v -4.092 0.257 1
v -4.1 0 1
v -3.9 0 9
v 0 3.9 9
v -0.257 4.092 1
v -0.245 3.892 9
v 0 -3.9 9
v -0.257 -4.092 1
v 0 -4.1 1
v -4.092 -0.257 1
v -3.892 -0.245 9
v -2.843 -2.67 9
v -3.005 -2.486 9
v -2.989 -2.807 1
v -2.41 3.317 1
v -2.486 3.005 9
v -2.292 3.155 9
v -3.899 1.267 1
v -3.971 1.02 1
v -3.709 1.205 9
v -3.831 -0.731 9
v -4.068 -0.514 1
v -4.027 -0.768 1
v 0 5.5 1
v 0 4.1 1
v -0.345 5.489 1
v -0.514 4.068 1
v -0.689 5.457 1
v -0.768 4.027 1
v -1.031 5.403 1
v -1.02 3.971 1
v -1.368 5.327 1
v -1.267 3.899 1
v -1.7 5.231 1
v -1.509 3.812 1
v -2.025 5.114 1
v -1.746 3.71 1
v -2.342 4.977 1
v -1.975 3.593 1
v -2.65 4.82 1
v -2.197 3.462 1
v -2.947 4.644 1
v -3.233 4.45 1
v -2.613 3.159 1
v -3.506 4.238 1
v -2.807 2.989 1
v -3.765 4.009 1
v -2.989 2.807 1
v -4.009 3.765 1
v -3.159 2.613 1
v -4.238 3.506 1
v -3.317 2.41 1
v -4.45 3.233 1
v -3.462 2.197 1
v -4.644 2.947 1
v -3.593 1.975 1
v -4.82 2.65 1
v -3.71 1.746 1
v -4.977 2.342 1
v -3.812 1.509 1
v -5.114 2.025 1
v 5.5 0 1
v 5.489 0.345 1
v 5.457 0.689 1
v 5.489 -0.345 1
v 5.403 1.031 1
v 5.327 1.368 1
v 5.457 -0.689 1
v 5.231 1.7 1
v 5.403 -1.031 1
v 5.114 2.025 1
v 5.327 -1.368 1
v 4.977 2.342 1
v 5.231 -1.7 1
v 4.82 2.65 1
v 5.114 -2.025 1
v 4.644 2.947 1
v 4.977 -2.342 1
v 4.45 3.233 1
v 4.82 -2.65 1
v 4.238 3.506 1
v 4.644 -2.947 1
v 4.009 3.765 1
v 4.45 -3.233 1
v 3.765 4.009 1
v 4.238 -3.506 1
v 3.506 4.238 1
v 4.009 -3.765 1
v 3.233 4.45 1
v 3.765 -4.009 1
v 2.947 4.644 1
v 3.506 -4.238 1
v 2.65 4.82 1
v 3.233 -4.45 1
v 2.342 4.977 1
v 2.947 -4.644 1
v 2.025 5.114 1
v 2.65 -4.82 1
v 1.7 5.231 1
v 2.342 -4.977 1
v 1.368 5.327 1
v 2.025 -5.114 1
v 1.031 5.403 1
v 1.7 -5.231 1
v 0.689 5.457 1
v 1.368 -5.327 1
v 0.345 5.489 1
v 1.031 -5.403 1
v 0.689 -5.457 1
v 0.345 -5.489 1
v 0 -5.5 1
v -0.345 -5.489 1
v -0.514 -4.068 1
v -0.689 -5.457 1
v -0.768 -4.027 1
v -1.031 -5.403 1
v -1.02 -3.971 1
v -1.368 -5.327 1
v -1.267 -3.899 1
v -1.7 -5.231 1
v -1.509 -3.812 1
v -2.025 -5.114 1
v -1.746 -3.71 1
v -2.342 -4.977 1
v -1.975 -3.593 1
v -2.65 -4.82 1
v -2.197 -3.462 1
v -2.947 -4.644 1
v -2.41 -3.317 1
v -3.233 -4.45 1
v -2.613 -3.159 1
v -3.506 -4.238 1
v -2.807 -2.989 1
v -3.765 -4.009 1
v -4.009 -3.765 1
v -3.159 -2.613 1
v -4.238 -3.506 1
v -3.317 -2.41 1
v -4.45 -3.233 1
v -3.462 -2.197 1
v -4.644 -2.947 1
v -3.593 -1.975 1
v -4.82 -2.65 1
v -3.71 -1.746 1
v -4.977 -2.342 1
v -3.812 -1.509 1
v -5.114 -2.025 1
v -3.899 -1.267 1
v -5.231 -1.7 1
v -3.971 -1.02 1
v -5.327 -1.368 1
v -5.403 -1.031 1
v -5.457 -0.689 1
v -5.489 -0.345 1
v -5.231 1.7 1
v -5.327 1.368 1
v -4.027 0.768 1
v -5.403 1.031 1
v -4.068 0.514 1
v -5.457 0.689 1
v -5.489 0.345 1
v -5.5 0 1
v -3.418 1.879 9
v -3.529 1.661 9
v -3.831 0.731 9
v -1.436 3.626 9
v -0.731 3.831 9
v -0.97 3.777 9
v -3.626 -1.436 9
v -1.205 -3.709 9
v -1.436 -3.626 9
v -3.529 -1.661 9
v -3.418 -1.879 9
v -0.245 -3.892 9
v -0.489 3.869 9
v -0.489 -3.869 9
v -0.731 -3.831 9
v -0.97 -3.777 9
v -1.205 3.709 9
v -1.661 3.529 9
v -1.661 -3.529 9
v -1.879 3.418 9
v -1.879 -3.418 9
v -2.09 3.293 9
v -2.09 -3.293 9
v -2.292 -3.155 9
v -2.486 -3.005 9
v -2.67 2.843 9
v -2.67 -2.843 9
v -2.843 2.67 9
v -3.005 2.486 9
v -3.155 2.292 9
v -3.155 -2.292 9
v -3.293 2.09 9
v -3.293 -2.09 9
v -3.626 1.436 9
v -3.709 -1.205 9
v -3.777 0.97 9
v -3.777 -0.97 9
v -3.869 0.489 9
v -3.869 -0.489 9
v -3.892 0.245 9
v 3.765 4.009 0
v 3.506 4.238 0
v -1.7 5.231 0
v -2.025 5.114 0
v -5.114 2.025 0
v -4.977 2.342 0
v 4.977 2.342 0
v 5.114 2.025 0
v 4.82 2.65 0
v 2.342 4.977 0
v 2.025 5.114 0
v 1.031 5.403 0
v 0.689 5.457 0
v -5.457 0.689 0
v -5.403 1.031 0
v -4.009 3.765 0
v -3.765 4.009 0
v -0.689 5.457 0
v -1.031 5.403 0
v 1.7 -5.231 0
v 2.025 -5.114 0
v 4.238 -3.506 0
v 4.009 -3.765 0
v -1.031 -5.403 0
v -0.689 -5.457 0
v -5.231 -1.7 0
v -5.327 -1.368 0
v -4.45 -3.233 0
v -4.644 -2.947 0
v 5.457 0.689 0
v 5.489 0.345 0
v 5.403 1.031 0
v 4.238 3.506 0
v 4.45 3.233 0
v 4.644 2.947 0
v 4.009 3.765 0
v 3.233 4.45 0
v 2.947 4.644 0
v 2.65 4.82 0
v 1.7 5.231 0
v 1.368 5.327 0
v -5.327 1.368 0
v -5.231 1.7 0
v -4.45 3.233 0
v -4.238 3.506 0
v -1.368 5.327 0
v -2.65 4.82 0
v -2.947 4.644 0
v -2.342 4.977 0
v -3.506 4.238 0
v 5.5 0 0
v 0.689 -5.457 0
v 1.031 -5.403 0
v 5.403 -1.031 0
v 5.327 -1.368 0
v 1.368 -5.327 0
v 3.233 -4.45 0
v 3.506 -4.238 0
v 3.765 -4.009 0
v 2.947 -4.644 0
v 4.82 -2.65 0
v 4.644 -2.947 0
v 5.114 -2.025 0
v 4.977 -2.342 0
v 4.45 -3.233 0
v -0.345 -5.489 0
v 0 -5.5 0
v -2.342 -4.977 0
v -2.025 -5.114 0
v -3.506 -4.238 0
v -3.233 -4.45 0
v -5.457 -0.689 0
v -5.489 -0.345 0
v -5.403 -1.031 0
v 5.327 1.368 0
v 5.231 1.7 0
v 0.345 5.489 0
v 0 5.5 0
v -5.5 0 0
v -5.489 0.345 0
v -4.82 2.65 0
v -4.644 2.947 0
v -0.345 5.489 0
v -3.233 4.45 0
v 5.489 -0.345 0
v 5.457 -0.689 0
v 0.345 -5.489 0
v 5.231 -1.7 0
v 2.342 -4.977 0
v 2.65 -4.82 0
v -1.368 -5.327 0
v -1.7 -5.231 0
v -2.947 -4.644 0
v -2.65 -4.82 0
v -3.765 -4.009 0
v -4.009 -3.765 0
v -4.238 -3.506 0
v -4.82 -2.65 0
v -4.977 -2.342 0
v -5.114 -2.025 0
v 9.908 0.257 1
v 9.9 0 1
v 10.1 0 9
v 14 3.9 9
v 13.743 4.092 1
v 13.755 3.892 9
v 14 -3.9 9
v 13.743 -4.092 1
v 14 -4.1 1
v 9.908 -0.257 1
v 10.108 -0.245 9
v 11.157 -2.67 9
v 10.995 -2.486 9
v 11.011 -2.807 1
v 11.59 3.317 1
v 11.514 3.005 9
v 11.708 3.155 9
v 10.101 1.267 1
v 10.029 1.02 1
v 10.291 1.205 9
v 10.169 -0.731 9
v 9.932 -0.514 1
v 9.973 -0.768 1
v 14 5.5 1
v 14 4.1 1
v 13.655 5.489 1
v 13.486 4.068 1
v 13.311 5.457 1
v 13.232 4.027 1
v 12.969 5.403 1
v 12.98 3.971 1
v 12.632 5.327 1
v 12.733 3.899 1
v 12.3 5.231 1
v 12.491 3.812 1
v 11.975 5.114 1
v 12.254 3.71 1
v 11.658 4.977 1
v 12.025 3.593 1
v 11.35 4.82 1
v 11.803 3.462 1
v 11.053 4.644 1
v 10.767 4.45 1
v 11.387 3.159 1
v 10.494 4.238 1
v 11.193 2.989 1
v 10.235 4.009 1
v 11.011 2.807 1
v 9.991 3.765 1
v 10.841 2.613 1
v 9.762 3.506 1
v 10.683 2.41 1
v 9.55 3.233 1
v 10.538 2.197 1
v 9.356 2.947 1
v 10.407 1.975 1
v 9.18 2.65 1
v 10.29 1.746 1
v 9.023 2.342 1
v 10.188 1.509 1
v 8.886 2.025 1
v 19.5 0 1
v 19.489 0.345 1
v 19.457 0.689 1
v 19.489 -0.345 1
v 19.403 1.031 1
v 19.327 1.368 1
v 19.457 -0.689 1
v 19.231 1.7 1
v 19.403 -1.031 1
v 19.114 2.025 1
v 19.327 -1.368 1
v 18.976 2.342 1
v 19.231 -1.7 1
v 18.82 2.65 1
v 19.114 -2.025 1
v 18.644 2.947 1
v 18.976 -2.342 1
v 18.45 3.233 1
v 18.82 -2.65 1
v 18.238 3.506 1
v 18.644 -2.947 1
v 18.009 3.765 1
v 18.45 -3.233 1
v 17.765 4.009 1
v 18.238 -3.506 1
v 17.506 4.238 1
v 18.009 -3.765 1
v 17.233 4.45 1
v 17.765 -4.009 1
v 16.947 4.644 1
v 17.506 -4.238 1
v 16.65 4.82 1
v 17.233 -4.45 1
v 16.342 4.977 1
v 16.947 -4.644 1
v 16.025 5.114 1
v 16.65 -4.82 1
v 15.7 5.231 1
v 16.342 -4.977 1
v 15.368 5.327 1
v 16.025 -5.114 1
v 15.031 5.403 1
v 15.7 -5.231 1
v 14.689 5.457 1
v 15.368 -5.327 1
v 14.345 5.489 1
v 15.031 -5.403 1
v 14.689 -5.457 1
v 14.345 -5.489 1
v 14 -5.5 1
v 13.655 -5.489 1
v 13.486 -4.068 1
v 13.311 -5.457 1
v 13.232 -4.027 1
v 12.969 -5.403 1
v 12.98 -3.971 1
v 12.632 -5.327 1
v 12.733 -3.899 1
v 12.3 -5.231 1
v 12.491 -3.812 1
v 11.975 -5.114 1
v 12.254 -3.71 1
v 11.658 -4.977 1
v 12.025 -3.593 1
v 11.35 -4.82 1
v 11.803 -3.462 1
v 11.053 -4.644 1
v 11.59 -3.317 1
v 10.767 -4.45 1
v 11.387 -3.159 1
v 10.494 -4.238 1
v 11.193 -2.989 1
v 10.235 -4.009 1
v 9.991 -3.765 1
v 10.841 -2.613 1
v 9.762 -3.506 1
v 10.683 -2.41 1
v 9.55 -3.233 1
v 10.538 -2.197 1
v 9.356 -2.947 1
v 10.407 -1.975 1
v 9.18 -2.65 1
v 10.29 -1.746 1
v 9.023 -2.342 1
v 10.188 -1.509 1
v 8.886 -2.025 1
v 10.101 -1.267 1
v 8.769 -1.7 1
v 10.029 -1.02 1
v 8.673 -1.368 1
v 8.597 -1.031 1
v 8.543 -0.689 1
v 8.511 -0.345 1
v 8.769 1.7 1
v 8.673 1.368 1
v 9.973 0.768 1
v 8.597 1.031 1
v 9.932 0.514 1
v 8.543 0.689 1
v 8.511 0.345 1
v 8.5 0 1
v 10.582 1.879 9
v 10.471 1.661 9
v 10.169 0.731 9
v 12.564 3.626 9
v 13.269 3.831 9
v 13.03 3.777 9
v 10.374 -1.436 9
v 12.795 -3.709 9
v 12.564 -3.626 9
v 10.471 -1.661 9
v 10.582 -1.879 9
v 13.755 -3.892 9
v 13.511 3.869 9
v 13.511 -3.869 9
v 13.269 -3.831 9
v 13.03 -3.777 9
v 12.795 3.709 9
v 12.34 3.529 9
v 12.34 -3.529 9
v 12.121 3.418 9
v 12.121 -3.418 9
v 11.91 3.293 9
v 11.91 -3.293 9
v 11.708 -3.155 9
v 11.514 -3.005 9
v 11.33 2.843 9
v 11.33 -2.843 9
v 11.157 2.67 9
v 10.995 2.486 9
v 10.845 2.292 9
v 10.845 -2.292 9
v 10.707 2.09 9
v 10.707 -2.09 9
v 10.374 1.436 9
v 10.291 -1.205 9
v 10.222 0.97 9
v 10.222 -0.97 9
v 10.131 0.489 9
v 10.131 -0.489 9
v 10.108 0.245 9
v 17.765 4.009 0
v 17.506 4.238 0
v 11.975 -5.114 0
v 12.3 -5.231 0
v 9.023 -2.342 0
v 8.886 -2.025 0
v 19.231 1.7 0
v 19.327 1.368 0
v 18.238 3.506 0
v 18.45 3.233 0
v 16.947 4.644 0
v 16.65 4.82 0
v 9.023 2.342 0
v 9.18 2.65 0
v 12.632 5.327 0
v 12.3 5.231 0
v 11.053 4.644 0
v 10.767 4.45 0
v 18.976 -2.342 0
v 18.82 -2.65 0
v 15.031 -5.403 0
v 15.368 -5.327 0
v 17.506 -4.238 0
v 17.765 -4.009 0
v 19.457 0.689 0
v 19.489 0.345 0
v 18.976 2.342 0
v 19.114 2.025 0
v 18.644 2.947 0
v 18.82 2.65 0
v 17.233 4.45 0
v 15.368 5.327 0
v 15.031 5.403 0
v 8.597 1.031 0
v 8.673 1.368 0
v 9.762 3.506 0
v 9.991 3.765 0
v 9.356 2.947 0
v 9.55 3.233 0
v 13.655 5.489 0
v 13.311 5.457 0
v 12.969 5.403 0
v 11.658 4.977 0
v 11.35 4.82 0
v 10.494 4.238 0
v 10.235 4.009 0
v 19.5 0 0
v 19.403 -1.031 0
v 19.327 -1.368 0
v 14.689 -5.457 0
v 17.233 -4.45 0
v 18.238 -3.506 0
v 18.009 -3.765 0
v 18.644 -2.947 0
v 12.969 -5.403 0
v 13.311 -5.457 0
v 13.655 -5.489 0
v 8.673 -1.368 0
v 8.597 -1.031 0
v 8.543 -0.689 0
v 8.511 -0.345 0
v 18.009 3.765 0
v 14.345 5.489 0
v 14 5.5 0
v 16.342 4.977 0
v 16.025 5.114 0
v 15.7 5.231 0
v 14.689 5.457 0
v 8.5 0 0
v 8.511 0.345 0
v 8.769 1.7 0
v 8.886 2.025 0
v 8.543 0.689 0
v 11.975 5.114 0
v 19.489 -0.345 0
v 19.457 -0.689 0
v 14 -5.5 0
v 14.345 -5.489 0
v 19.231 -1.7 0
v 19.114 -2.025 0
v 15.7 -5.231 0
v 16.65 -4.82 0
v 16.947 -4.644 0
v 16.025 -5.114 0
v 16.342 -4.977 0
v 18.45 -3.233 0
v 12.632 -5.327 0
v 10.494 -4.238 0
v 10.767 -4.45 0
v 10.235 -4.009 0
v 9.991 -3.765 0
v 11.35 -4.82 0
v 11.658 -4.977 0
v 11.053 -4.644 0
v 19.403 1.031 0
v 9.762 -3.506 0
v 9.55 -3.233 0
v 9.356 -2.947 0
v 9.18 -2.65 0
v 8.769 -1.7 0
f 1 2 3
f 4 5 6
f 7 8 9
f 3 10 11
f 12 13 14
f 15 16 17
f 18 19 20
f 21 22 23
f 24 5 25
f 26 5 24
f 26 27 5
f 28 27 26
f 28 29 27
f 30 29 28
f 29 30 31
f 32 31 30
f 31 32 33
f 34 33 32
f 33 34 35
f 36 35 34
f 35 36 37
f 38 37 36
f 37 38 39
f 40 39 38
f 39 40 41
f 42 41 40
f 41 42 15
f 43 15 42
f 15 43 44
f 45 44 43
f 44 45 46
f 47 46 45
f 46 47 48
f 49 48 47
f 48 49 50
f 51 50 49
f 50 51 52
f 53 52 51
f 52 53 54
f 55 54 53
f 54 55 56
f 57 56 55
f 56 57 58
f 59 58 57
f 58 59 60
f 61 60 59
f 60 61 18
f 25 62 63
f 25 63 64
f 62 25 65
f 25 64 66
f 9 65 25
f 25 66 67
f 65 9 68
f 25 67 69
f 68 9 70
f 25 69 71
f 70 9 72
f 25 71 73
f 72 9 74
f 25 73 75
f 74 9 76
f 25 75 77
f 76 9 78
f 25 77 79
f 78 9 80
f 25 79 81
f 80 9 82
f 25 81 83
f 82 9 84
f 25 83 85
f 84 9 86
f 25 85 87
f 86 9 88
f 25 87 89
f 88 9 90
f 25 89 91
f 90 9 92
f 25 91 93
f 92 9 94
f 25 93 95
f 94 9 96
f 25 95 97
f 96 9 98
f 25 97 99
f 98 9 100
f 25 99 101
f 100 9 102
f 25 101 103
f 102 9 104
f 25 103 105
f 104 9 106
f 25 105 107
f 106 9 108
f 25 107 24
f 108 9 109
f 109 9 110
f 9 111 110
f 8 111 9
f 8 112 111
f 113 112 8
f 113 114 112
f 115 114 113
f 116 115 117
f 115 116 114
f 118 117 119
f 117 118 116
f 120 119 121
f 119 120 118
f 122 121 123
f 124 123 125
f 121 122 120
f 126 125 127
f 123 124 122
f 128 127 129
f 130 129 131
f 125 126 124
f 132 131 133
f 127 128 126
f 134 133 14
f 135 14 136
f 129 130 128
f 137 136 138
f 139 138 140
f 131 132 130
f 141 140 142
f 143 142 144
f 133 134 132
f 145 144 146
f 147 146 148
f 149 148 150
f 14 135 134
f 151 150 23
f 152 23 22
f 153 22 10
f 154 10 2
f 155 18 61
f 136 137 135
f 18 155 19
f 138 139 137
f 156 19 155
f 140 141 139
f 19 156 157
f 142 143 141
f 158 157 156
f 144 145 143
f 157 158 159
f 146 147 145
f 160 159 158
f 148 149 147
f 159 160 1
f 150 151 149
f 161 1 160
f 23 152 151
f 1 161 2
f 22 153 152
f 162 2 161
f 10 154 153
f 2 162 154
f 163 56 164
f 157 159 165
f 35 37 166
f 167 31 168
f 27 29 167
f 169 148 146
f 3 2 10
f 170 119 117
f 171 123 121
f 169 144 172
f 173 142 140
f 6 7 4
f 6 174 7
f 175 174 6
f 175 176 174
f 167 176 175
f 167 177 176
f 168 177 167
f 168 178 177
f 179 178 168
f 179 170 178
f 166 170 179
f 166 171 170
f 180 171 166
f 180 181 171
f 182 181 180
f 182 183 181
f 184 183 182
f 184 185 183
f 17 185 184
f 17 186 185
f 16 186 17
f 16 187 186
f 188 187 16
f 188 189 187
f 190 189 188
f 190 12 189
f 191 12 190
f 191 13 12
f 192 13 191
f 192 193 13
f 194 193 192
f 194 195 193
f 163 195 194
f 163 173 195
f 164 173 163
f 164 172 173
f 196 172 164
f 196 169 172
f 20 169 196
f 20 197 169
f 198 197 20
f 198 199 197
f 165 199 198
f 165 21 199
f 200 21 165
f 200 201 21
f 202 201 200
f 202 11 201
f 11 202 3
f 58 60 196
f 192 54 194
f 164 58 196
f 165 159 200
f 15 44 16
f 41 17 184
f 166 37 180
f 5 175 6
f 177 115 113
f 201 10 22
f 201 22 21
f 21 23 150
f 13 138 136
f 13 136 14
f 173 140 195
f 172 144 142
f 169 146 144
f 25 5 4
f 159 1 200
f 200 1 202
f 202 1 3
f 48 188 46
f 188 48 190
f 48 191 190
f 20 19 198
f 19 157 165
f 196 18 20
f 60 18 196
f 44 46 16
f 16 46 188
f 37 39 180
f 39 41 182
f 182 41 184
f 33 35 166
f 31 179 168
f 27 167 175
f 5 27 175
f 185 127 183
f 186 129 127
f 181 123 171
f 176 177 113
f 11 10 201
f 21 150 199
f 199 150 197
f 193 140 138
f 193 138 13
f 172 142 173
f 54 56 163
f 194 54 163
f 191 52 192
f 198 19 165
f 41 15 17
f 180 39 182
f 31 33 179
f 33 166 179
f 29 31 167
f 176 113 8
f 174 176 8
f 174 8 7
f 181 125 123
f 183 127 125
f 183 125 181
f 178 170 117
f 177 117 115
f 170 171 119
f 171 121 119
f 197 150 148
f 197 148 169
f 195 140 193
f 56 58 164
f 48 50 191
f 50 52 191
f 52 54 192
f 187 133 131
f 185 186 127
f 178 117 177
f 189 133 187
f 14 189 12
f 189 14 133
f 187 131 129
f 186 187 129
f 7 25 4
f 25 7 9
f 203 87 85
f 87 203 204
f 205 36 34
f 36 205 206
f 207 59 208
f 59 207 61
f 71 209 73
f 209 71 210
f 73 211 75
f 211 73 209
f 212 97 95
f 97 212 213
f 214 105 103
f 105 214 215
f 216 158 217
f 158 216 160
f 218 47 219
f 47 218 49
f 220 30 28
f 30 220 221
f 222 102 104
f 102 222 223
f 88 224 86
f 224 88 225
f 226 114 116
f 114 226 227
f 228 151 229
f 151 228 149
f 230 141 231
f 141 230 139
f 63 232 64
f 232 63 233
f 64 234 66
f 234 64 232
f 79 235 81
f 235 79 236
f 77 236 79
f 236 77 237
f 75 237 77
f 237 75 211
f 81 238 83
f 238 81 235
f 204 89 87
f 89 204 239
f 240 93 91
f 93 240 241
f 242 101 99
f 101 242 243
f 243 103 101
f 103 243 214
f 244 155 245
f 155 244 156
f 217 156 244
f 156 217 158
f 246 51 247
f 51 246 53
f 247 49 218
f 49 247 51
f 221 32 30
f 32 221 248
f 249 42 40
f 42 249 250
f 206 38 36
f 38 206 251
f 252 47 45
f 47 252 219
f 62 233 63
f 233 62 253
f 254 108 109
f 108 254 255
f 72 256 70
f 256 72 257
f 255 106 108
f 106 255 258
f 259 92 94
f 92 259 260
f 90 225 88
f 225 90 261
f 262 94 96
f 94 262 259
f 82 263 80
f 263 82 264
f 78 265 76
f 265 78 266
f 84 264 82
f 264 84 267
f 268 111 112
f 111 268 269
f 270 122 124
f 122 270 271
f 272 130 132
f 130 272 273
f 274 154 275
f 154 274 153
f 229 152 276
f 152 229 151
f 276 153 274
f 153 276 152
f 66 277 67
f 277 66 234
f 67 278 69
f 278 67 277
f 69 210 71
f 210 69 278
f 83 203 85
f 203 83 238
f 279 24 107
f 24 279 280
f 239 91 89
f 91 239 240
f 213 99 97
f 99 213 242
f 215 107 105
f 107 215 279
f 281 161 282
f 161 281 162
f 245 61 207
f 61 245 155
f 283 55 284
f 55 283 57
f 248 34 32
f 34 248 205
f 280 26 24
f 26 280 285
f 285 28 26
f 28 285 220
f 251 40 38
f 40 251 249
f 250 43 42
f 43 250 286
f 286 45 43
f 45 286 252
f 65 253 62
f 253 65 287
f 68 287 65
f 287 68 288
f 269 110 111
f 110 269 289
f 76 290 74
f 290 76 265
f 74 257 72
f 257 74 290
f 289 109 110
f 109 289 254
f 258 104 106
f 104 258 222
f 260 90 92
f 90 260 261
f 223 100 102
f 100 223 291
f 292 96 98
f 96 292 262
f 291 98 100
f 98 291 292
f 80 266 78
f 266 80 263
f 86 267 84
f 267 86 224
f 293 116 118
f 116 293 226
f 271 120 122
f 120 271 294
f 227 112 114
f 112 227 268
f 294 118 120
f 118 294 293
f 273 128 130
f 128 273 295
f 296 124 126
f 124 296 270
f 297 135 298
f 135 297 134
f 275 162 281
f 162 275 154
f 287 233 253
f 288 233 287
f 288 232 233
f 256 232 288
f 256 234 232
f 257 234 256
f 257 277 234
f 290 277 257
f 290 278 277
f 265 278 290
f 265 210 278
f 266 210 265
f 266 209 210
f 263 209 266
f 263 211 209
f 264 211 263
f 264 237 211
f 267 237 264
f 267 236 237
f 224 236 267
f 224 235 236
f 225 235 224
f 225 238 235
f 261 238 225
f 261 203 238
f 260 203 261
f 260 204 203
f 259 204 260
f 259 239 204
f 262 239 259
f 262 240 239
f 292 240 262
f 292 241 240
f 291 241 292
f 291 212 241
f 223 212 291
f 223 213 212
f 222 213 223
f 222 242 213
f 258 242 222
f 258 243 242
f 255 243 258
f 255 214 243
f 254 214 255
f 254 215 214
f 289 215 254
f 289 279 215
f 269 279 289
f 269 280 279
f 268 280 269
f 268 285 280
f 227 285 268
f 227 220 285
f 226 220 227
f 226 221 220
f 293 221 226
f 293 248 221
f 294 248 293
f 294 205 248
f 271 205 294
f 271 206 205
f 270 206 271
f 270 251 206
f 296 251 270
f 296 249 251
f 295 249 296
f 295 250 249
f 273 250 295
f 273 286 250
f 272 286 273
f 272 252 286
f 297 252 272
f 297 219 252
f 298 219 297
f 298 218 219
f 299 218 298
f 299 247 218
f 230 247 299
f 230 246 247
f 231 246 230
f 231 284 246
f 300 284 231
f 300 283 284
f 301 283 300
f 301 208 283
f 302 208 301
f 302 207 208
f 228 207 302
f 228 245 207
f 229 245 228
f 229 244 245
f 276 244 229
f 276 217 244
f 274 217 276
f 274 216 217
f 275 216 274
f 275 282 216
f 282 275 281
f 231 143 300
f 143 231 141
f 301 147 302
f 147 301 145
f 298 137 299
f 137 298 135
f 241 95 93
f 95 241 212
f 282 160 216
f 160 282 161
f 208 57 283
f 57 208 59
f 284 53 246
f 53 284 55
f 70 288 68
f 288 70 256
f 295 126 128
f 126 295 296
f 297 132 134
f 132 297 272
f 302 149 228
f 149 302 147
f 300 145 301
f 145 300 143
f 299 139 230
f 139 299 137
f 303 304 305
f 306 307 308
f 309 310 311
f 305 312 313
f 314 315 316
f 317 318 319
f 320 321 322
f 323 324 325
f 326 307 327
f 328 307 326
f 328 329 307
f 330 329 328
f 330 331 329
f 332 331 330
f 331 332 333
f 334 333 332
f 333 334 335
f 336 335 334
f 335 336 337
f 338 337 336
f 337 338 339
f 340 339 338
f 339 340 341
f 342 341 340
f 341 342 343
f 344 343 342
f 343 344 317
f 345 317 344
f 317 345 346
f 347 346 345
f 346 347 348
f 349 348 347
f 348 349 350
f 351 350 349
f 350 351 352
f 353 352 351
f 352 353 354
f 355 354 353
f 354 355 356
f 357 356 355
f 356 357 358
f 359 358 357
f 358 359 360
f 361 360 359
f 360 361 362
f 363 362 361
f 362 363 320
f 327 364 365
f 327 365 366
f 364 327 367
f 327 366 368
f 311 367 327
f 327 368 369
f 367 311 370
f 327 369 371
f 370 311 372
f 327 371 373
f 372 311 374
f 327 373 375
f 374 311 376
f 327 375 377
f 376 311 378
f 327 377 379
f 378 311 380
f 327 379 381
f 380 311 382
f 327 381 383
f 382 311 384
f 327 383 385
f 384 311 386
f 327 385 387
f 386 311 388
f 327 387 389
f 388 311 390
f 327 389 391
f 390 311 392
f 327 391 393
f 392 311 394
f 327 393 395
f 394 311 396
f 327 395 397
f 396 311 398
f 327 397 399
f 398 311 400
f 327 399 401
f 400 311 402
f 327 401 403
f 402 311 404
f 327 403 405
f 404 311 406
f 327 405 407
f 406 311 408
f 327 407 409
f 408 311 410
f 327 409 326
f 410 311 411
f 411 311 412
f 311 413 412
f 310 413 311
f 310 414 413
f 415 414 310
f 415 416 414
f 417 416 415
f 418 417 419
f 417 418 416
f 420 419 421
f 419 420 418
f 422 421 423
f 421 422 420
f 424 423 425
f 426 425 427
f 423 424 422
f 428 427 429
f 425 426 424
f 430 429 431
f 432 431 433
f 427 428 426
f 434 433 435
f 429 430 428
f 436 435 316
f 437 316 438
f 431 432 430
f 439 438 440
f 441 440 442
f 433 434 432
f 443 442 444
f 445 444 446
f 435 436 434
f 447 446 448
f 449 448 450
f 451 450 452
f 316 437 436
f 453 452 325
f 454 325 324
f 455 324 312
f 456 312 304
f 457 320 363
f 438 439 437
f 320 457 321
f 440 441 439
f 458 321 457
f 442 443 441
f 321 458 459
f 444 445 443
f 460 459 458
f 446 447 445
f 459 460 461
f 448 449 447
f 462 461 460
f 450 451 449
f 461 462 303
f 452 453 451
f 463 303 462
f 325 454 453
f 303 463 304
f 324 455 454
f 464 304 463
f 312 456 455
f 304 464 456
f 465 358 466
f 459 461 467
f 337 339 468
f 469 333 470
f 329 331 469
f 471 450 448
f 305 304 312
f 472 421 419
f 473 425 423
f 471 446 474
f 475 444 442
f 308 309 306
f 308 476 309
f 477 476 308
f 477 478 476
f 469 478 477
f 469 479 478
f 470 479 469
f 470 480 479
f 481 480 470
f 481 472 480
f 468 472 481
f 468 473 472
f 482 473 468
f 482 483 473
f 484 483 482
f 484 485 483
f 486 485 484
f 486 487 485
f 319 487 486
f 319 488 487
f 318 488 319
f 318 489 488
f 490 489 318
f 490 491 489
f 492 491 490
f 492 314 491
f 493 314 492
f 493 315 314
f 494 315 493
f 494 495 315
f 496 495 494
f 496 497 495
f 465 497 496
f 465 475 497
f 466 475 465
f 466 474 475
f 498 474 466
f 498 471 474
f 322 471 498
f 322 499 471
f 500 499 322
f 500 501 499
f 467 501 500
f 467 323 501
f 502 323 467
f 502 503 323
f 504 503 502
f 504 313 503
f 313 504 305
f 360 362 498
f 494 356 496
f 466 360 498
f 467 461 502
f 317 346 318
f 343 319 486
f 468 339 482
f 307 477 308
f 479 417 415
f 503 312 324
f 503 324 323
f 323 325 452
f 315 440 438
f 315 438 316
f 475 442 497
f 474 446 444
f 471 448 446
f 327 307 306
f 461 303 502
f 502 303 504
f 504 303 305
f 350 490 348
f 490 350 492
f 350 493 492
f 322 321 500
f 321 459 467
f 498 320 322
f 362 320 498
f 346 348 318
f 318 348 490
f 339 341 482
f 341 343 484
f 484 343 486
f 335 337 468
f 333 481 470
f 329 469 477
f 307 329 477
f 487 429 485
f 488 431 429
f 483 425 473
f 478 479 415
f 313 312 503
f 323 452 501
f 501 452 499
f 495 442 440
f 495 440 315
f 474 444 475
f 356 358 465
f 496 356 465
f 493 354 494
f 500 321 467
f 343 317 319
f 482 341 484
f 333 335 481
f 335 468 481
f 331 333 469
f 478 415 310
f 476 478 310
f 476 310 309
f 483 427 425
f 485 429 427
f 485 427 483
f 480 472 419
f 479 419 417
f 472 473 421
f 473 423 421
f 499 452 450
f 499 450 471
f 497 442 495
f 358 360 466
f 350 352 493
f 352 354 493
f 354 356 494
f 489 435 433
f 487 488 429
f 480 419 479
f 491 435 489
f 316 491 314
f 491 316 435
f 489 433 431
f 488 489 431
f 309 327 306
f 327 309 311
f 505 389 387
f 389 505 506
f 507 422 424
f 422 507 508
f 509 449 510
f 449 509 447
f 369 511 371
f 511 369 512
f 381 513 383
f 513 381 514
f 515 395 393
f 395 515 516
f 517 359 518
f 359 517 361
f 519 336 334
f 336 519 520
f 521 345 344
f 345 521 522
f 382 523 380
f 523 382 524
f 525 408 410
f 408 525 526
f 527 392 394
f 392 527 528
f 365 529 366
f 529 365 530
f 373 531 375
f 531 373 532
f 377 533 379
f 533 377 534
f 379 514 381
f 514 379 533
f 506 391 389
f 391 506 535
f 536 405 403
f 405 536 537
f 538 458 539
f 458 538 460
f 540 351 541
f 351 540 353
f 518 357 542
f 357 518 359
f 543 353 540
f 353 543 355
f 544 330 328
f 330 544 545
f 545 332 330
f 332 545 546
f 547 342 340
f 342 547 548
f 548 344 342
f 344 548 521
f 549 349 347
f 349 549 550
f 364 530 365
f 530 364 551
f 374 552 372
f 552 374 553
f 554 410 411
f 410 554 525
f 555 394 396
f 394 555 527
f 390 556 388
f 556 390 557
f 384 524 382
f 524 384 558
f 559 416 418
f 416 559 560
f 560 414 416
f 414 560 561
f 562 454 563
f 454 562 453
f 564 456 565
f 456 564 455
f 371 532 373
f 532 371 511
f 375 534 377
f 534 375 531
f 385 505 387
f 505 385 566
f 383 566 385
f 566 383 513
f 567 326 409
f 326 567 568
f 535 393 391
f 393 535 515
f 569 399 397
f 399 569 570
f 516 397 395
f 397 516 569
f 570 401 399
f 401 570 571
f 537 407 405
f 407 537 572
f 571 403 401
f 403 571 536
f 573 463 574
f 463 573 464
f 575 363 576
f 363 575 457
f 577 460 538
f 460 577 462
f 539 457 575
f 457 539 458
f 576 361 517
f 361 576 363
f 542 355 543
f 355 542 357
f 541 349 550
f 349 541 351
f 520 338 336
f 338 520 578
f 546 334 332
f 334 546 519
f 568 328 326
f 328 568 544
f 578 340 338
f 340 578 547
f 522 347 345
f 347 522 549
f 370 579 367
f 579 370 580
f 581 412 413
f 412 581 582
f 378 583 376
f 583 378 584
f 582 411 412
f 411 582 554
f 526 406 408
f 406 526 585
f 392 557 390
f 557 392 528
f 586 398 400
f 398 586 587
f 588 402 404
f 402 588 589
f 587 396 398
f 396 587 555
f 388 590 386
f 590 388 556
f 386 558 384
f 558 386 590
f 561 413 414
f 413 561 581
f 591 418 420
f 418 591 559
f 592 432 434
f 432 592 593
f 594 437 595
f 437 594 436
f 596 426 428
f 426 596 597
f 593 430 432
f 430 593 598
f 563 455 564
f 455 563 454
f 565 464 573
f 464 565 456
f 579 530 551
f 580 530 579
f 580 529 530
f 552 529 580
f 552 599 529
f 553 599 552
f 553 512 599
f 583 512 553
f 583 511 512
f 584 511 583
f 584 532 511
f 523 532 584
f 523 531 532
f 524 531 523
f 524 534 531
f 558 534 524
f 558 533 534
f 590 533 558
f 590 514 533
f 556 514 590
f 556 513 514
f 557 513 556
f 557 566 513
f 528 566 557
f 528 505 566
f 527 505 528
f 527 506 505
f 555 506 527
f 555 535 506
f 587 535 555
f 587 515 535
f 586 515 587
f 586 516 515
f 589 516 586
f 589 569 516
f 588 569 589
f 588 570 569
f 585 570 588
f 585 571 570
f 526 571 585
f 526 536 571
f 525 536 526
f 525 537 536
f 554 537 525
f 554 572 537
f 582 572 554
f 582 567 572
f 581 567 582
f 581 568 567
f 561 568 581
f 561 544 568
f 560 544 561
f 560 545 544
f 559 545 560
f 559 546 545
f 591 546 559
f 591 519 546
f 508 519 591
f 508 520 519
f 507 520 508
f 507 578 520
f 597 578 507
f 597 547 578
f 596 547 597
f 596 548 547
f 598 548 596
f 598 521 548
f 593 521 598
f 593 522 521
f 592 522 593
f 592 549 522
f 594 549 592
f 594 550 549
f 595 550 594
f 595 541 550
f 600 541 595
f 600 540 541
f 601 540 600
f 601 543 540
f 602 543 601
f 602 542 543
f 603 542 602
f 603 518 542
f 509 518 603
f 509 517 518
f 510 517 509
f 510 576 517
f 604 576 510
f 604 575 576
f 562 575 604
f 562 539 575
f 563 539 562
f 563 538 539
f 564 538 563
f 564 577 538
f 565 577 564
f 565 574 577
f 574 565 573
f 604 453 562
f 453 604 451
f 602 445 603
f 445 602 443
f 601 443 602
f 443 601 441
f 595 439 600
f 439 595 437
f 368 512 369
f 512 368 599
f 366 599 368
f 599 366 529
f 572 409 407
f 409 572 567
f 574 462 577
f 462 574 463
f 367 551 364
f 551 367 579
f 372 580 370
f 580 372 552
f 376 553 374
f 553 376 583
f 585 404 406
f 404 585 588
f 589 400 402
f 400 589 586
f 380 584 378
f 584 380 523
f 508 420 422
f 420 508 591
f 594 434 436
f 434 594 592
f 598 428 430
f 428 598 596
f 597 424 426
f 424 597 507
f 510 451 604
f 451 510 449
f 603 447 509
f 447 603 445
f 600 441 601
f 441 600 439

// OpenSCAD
module halfcyl_plug(){
d=8;
$fn=100;
cylinder(d=d+3,h=1);

difference(){
translate([0,0,1])cylinder(r1=d/2+0.1, r2=d/2-0.1,h=8);
translate([0,-10,1])cube([20,20,21]);
}
}

halfcyl_plug();
translate([14,0,0])halfcyl_plug();
